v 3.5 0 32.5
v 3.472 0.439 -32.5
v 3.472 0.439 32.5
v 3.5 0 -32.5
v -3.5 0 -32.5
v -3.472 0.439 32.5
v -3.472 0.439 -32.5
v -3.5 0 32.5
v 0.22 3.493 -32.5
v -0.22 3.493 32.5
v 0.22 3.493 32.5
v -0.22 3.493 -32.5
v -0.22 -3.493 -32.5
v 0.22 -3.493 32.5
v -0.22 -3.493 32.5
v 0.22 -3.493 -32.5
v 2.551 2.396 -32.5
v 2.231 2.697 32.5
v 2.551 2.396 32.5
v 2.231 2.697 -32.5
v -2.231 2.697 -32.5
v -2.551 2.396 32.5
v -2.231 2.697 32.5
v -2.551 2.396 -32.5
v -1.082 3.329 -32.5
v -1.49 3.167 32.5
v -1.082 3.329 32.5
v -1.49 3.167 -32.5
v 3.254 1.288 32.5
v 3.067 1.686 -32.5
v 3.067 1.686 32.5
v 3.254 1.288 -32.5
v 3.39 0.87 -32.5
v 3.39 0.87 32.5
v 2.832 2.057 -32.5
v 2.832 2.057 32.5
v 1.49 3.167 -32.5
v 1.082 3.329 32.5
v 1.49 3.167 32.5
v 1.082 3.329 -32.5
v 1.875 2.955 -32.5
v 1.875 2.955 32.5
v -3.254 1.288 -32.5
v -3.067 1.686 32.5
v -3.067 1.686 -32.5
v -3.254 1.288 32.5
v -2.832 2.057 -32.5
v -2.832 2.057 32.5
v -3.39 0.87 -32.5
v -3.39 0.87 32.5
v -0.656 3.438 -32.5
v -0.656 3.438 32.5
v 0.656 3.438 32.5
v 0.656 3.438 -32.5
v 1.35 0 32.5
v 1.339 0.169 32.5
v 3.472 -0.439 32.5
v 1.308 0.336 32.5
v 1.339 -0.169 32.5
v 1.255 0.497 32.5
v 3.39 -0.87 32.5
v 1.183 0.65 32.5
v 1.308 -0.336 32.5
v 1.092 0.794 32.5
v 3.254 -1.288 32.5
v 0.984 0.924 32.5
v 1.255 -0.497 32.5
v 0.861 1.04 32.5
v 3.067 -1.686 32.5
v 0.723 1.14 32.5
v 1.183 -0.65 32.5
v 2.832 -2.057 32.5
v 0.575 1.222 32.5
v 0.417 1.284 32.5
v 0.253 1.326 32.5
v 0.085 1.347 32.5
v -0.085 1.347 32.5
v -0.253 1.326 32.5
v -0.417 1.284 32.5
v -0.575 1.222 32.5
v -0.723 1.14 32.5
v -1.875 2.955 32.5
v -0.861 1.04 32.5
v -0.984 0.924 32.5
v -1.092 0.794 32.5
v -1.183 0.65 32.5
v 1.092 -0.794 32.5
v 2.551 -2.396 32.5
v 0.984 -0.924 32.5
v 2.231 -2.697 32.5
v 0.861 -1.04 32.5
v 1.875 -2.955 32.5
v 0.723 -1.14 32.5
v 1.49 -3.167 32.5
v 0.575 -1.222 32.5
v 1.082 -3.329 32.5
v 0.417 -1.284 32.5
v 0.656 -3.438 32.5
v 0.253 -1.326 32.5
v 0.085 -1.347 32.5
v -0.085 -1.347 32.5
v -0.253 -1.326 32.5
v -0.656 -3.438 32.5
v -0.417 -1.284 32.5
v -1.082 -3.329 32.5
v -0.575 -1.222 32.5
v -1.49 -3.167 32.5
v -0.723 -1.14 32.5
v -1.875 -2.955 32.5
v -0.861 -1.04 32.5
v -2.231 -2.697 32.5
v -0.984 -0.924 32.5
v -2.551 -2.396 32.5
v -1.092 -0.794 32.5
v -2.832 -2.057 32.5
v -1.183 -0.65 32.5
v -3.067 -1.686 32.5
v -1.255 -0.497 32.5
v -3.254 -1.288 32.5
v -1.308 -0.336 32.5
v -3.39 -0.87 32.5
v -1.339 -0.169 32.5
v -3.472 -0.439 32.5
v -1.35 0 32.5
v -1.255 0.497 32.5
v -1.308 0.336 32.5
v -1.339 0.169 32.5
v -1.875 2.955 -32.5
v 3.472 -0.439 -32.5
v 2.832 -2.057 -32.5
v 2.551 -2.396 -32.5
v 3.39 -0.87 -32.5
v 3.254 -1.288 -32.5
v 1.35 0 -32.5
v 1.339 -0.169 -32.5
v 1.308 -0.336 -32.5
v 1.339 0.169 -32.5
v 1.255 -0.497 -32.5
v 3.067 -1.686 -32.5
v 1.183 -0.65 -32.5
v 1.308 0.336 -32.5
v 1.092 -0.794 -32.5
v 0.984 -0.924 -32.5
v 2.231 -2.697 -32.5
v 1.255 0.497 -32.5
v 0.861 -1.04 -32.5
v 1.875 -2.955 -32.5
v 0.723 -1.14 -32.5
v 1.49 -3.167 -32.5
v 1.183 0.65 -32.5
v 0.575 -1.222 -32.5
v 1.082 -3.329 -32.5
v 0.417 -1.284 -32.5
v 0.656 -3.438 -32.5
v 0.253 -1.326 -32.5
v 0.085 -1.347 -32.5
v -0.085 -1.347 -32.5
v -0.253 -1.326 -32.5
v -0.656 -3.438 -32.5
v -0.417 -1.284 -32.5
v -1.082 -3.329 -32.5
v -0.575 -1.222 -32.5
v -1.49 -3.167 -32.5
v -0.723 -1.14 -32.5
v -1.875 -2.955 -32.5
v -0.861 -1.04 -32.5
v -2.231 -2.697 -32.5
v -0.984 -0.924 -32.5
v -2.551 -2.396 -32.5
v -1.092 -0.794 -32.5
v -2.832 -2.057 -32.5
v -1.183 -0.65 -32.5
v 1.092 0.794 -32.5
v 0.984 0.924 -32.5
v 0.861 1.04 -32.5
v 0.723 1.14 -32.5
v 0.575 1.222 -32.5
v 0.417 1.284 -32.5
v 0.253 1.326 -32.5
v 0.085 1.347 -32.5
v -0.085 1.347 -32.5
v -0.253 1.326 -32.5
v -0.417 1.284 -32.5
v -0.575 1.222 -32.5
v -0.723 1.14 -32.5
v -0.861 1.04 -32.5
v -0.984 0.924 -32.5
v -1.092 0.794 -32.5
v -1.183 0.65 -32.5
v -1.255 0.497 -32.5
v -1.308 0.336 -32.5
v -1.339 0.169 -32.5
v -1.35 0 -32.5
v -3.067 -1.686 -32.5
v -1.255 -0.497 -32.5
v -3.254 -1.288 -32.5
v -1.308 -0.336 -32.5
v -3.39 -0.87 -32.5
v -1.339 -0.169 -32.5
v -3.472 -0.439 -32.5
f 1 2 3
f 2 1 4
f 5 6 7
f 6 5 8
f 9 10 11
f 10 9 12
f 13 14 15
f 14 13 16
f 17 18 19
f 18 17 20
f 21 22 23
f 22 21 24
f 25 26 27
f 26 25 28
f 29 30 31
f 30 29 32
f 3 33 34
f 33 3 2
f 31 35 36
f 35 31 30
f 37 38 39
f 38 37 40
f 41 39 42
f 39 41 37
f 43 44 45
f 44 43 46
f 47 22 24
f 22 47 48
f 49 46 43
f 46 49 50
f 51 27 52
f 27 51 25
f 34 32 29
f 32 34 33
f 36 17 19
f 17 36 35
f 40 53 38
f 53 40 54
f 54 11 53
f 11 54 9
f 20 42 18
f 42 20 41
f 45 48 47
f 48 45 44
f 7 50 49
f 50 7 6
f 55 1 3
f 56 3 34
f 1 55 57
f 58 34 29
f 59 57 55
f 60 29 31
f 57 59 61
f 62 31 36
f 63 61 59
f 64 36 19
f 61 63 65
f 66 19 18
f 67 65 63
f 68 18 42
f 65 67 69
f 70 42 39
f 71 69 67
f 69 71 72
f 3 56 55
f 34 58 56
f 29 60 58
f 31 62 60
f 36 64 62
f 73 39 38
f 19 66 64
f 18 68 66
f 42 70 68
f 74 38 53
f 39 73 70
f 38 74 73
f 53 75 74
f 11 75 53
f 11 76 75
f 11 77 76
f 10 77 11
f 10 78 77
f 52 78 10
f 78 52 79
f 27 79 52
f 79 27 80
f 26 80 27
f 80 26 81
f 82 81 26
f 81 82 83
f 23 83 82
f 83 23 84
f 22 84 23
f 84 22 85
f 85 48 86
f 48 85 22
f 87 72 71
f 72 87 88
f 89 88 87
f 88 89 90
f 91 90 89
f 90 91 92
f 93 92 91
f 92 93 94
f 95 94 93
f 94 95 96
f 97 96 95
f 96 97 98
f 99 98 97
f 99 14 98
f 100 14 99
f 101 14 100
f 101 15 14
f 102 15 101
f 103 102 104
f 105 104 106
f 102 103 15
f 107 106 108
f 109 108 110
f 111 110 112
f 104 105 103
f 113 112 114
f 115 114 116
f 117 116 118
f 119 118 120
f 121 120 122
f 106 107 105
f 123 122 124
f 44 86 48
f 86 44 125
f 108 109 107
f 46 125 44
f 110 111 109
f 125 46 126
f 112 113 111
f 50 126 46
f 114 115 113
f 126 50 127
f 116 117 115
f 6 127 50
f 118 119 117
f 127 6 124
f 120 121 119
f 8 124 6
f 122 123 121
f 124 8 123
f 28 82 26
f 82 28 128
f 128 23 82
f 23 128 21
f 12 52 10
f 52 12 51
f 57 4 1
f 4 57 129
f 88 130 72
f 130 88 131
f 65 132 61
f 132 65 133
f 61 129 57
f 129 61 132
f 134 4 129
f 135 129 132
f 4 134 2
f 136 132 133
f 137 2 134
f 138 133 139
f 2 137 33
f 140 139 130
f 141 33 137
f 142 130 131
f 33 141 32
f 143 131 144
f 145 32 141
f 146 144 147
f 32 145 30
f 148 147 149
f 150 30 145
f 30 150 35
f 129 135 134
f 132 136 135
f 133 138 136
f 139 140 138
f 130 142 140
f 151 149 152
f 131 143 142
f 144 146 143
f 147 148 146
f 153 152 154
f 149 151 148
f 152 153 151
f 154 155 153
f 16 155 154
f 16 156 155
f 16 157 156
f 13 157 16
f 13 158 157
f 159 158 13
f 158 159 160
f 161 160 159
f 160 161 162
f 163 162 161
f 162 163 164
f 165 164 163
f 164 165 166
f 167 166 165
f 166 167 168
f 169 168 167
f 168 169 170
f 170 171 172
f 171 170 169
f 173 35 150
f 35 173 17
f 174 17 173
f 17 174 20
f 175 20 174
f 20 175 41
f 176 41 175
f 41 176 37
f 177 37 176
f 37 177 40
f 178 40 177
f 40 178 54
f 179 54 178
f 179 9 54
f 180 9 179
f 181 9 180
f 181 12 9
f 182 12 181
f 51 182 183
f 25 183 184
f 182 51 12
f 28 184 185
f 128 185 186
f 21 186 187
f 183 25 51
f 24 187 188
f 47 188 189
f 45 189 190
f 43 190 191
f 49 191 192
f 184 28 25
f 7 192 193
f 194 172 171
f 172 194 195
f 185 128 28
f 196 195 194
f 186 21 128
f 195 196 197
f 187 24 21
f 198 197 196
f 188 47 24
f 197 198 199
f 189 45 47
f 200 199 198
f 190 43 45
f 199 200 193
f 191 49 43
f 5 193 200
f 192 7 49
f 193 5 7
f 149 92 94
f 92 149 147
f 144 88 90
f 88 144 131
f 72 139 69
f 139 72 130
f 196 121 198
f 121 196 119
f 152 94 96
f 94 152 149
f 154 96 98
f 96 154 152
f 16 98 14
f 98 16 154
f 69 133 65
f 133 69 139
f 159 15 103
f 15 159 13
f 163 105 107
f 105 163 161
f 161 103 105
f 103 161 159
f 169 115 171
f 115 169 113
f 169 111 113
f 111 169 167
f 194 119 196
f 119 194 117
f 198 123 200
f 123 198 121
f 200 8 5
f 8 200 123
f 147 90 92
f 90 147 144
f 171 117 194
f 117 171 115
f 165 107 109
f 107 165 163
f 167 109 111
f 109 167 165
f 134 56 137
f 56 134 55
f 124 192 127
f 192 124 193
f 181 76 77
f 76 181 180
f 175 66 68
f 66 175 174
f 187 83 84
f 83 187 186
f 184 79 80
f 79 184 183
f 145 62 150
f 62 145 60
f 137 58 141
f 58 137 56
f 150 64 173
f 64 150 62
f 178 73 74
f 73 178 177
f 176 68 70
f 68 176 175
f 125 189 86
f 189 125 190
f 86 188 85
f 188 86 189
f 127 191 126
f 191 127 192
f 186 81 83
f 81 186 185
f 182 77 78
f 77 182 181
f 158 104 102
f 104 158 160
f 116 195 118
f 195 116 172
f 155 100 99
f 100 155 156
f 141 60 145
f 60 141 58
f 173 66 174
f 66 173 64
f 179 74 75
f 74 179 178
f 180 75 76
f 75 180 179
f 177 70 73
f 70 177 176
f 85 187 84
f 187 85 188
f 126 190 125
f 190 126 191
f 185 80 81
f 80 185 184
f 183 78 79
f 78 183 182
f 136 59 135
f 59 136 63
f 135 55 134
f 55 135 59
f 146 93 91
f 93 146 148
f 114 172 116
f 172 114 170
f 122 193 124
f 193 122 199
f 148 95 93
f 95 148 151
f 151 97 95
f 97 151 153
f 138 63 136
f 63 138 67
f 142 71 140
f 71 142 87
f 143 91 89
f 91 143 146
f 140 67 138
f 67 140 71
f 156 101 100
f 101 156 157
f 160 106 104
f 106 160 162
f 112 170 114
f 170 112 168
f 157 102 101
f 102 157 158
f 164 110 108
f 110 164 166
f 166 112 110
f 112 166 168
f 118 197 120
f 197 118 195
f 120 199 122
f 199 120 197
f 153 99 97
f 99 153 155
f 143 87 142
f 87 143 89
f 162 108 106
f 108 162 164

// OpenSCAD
$fn = 50;


difference() {
	union() {
		translate(v = [0, 0, -32.5000000000]) {
			cylinder(h = 65, r = 3.5000000000);
		}
	}
	union() {
		translate(v = [0, 0, -100.0000000000]) {
			cylinder(h = 200, r = 1.3500000000);
		}
	}
}
